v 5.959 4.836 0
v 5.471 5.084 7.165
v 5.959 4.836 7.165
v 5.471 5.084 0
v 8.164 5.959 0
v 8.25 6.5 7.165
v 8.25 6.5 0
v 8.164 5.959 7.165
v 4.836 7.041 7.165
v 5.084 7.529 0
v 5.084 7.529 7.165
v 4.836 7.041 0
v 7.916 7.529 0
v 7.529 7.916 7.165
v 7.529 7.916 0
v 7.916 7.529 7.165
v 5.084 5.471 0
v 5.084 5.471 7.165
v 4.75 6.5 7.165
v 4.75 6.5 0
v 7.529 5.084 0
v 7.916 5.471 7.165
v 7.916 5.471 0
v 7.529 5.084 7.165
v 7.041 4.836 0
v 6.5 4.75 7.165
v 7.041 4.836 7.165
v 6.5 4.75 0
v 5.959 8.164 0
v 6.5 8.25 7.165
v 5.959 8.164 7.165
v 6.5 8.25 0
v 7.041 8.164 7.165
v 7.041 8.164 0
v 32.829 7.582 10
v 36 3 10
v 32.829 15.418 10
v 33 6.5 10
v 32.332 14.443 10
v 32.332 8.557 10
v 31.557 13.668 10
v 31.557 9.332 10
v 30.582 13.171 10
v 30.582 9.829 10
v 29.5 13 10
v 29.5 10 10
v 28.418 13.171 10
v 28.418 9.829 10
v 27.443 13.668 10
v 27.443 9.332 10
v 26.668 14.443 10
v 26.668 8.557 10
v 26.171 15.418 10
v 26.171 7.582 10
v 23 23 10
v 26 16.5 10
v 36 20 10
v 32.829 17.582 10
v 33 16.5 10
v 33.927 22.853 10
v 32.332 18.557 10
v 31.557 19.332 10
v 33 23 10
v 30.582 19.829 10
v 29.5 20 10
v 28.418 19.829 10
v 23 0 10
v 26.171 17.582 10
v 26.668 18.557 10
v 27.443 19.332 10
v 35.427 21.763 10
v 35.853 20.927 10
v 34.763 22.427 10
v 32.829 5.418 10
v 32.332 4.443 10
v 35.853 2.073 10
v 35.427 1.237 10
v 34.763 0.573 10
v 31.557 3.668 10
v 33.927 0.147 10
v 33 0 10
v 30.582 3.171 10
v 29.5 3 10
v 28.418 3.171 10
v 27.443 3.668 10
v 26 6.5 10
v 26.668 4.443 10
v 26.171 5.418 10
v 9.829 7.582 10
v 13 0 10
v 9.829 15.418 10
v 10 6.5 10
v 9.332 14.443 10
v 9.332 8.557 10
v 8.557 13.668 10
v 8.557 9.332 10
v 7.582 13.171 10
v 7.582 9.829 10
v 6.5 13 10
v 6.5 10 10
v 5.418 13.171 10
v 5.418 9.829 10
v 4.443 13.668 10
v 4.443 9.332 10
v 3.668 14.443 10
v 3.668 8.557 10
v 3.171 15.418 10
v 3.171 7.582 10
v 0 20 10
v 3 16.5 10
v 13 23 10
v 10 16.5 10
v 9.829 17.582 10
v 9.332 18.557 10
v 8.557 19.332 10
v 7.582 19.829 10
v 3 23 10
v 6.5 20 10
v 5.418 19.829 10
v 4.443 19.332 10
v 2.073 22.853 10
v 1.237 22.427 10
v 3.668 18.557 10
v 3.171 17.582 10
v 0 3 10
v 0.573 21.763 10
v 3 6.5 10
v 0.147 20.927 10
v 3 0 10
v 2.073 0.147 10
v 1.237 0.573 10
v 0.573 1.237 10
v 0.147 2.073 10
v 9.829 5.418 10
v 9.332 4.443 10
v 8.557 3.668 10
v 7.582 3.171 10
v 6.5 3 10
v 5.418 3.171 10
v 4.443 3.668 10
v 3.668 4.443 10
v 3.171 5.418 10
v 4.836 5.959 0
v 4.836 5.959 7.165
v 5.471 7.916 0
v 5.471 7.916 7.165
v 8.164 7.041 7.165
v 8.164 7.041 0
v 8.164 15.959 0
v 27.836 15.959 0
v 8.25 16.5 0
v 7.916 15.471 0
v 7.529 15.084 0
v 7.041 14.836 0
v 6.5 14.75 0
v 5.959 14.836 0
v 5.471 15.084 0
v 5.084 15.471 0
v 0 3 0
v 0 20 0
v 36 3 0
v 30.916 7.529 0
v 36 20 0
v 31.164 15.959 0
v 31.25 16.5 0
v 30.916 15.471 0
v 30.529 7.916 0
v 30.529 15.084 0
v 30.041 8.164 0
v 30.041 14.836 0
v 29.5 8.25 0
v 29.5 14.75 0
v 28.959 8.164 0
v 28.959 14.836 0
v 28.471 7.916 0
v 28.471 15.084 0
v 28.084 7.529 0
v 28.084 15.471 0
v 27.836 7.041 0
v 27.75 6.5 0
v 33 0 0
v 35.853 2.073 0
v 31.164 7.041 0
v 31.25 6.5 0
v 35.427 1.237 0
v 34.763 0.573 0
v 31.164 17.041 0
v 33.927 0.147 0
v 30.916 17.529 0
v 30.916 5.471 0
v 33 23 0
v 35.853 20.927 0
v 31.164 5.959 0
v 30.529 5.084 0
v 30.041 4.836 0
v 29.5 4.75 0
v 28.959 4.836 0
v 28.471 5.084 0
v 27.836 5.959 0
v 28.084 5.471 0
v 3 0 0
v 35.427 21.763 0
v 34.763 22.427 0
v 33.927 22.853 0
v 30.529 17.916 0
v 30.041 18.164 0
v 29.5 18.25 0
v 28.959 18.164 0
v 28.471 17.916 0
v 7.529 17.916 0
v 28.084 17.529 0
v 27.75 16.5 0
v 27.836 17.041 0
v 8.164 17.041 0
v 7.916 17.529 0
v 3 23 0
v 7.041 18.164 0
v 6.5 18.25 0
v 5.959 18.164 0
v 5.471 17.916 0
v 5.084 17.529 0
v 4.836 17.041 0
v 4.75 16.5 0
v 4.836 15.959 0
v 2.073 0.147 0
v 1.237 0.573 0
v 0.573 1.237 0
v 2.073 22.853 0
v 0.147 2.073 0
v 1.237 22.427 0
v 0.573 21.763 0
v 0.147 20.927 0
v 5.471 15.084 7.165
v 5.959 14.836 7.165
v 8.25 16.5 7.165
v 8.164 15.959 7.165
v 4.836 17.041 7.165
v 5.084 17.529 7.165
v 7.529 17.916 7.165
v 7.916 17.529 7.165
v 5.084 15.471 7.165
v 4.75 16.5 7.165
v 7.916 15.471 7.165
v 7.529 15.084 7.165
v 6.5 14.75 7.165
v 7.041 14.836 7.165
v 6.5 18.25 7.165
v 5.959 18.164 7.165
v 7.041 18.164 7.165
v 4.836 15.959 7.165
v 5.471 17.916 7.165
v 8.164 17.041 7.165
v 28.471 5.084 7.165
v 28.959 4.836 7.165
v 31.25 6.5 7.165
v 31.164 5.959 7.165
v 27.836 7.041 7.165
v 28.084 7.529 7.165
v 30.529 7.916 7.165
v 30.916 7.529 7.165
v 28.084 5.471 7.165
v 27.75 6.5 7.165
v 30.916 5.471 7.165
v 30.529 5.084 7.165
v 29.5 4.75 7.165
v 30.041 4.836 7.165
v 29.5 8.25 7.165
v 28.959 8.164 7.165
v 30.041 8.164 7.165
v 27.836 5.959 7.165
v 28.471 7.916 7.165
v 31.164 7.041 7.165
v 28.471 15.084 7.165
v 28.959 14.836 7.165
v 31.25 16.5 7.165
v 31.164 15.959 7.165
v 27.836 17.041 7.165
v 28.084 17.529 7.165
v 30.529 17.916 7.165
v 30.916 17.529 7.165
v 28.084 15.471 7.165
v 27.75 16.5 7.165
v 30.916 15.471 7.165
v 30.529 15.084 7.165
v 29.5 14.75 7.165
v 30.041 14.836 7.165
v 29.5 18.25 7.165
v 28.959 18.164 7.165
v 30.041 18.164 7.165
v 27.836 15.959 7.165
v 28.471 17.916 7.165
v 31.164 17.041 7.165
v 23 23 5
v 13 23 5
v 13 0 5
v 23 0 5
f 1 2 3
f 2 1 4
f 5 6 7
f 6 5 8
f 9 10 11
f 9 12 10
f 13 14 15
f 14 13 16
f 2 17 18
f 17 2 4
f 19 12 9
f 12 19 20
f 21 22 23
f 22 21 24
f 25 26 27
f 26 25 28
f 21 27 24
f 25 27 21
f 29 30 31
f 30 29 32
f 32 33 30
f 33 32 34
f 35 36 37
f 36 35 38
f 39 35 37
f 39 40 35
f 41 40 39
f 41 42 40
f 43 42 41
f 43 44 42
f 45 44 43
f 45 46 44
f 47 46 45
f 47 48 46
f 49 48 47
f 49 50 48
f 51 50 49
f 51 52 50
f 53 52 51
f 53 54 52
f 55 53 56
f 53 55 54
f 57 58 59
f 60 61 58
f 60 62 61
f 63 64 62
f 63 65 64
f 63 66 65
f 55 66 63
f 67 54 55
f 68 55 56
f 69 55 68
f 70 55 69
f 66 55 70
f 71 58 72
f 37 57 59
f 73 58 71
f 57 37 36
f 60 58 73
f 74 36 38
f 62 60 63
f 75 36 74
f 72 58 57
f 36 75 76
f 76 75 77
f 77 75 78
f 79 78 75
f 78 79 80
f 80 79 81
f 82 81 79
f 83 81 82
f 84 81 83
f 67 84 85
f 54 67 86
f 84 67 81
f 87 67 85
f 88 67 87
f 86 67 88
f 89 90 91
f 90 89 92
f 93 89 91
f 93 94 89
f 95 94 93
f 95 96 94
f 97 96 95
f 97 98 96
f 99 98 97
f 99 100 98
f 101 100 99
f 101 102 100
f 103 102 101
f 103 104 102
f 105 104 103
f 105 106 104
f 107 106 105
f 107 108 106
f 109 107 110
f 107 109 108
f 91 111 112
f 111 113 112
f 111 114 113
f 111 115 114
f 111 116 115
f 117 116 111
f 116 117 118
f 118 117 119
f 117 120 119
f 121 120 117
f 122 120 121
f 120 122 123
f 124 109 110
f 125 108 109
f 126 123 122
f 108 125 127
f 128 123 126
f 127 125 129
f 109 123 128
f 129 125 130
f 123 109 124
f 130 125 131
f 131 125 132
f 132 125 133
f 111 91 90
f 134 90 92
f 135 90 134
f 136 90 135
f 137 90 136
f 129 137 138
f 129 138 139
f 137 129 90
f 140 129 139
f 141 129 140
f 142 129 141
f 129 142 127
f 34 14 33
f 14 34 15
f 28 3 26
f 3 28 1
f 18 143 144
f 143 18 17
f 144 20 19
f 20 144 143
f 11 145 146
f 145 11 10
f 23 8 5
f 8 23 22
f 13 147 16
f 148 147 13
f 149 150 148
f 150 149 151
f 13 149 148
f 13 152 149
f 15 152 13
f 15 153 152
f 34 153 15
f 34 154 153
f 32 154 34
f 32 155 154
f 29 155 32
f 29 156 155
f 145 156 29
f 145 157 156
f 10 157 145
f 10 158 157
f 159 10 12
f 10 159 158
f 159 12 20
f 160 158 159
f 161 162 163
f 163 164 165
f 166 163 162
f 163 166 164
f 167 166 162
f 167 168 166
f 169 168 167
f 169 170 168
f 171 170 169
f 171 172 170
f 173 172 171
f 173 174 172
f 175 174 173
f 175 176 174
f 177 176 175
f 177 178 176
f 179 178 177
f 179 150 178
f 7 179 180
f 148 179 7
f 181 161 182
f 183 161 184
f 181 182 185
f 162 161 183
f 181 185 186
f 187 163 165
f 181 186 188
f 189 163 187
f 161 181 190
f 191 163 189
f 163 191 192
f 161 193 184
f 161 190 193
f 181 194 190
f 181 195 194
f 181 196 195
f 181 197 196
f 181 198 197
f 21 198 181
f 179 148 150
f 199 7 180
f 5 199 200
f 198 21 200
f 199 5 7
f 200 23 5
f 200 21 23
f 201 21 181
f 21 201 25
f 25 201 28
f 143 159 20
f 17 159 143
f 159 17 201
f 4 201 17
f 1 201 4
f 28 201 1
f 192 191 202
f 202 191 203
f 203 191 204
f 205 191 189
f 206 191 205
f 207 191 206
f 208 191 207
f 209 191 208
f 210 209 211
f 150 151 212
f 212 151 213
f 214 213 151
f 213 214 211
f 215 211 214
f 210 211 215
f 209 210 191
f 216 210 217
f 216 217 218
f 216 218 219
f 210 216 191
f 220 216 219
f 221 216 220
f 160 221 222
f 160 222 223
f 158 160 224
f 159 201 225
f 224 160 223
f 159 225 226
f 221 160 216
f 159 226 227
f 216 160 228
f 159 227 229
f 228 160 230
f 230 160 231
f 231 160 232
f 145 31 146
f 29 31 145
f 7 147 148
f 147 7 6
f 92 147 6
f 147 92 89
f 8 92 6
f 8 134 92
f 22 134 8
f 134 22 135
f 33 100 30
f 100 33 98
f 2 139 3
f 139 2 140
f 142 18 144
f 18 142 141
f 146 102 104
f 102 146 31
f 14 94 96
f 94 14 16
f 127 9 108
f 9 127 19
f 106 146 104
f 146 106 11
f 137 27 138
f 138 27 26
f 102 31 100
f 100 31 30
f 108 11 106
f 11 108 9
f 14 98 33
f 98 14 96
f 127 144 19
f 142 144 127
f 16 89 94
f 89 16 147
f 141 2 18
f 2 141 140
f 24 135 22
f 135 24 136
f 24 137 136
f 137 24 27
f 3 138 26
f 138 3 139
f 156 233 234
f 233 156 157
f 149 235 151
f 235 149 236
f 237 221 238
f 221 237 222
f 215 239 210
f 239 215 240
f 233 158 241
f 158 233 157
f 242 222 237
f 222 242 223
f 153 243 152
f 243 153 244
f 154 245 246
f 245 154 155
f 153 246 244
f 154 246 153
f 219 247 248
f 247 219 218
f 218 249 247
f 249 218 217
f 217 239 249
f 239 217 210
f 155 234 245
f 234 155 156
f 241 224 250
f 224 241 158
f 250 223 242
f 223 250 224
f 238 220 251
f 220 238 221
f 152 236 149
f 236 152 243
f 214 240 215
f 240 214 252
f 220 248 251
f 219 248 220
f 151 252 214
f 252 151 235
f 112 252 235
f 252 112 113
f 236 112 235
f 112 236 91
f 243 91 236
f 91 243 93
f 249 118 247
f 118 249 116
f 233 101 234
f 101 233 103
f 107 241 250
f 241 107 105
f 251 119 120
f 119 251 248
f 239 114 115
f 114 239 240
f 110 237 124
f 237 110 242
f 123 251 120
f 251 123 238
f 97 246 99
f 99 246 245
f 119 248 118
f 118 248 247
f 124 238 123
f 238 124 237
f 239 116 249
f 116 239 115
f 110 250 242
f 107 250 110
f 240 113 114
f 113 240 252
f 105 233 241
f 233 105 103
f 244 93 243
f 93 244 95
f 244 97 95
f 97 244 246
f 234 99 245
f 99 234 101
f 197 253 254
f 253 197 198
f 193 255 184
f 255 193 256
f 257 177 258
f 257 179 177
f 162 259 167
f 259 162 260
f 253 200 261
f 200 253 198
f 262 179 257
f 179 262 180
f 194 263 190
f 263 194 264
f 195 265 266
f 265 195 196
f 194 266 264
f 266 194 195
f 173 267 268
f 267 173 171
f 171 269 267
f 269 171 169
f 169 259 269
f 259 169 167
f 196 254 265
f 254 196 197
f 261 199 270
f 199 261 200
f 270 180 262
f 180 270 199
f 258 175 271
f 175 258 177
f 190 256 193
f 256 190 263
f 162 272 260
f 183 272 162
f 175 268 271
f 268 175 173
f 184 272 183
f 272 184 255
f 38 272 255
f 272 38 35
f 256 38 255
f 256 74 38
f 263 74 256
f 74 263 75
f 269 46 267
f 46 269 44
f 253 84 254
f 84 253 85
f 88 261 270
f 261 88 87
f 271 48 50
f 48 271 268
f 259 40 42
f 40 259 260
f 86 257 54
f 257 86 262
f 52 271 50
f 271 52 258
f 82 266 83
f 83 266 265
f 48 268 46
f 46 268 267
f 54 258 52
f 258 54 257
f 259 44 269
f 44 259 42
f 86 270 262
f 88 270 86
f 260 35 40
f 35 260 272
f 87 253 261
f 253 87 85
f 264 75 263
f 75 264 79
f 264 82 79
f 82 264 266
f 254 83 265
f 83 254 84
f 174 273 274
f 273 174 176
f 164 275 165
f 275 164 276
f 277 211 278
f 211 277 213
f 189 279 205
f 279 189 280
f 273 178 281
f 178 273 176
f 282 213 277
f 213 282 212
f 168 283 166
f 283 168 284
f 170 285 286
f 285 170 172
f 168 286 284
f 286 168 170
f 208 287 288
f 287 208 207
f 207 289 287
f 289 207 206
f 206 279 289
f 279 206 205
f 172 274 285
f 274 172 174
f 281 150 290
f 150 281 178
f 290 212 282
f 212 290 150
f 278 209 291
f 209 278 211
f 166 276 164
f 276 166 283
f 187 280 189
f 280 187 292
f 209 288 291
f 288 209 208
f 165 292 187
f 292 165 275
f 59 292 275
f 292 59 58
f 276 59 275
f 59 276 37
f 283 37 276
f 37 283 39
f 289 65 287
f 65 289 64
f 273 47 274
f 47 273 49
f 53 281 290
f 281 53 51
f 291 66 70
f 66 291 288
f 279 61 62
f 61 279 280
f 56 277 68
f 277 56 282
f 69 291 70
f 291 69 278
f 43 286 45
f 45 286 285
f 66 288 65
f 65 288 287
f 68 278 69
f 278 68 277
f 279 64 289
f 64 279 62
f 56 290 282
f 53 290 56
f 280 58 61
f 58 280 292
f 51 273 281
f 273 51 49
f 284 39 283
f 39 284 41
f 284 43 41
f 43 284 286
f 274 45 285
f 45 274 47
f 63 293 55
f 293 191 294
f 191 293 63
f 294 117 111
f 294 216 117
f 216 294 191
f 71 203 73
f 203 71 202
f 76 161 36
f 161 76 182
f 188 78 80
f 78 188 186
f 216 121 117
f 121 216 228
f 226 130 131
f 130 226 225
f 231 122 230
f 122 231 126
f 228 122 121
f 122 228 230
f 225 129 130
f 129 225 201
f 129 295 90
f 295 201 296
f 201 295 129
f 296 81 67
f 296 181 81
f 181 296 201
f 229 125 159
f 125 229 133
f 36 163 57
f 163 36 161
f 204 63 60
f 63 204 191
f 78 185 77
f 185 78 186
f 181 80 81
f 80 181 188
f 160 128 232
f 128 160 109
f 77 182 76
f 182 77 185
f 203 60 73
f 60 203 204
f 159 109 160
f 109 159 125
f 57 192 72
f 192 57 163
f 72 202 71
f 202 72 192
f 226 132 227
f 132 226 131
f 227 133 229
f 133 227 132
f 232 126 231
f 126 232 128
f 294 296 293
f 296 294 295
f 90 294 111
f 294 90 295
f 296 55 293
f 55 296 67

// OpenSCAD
$fn = 20;


difference() {
	difference() {
		linear_extrude(height = 10) {
			minkowski() {
				square(size = [30.0000000000, 17.0000000000]);
				translate(v = [3, 3, 0]) {
					circle(r = 3);
				}
			}
		}
		translate(v = [6.5000000000, 6.5000000000, 0]) {
			union() {
				translate(v = [0, 0.0000000000, 0]) {
					union() {
						linear_extrude(height = 10) {
							circle(r = 1.7500000000);
						}
						translate(v = [0, 0, 10]) {
							translate(v = [0, 0, -5.6692131669]) {
								cylinder(h = 5.6692131669, r1 = 0, r2 = 3.5000000000);
							}
						}
					}
				}
				translate(v = [0, 10.0000000000, 0]) {
					union() {
						linear_extrude(height = 10) {
							circle(r = 1.7500000000);
						}
						translate(v = [0, 0, 10]) {
							translate(v = [0, 0, -5.6692131669]) {
								cylinder(h = 5.6692131669, r1 = 0, r2 = 3.5000000000);
							}
						}
					}
				}
			}
		}
		translate(v = [29.5000000000, 6.5000000000, 0]) {
			union() {
				translate(v = [0, 0.0000000000, 0]) {
					union() {
						linear_extrude(height = 10) {
							circle(r = 1.7500000000);
						}
						translate(v = [0, 0, 10]) {
							translate(v = [0, 0, -5.6692131669]) {
								cylinder(h = 5.6692131669, r1 = 0, r2 = 3.5000000000);
							}
						}
					}
				}
				translate(v = [0, 10.0000000000, 0]) {
					union() {
						linear_extrude(height = 10) {
							circle(r = 1.7500000000);
						}
						translate(v = [0, 0, 10]) {
							translate(v = [0, 0, -5.6692131669]) {
								cylinder(h = 5.6692131669, r1 = 0, r2 = 3.5000000000);
							}
						}
					}
				}
			}
		}
	}
	translate(v = [13.0000000000, 0, 5]) {
		linear_extrude(height = 5) {
			square(size = [10, 23.0000000000]);
		}
	}
}
